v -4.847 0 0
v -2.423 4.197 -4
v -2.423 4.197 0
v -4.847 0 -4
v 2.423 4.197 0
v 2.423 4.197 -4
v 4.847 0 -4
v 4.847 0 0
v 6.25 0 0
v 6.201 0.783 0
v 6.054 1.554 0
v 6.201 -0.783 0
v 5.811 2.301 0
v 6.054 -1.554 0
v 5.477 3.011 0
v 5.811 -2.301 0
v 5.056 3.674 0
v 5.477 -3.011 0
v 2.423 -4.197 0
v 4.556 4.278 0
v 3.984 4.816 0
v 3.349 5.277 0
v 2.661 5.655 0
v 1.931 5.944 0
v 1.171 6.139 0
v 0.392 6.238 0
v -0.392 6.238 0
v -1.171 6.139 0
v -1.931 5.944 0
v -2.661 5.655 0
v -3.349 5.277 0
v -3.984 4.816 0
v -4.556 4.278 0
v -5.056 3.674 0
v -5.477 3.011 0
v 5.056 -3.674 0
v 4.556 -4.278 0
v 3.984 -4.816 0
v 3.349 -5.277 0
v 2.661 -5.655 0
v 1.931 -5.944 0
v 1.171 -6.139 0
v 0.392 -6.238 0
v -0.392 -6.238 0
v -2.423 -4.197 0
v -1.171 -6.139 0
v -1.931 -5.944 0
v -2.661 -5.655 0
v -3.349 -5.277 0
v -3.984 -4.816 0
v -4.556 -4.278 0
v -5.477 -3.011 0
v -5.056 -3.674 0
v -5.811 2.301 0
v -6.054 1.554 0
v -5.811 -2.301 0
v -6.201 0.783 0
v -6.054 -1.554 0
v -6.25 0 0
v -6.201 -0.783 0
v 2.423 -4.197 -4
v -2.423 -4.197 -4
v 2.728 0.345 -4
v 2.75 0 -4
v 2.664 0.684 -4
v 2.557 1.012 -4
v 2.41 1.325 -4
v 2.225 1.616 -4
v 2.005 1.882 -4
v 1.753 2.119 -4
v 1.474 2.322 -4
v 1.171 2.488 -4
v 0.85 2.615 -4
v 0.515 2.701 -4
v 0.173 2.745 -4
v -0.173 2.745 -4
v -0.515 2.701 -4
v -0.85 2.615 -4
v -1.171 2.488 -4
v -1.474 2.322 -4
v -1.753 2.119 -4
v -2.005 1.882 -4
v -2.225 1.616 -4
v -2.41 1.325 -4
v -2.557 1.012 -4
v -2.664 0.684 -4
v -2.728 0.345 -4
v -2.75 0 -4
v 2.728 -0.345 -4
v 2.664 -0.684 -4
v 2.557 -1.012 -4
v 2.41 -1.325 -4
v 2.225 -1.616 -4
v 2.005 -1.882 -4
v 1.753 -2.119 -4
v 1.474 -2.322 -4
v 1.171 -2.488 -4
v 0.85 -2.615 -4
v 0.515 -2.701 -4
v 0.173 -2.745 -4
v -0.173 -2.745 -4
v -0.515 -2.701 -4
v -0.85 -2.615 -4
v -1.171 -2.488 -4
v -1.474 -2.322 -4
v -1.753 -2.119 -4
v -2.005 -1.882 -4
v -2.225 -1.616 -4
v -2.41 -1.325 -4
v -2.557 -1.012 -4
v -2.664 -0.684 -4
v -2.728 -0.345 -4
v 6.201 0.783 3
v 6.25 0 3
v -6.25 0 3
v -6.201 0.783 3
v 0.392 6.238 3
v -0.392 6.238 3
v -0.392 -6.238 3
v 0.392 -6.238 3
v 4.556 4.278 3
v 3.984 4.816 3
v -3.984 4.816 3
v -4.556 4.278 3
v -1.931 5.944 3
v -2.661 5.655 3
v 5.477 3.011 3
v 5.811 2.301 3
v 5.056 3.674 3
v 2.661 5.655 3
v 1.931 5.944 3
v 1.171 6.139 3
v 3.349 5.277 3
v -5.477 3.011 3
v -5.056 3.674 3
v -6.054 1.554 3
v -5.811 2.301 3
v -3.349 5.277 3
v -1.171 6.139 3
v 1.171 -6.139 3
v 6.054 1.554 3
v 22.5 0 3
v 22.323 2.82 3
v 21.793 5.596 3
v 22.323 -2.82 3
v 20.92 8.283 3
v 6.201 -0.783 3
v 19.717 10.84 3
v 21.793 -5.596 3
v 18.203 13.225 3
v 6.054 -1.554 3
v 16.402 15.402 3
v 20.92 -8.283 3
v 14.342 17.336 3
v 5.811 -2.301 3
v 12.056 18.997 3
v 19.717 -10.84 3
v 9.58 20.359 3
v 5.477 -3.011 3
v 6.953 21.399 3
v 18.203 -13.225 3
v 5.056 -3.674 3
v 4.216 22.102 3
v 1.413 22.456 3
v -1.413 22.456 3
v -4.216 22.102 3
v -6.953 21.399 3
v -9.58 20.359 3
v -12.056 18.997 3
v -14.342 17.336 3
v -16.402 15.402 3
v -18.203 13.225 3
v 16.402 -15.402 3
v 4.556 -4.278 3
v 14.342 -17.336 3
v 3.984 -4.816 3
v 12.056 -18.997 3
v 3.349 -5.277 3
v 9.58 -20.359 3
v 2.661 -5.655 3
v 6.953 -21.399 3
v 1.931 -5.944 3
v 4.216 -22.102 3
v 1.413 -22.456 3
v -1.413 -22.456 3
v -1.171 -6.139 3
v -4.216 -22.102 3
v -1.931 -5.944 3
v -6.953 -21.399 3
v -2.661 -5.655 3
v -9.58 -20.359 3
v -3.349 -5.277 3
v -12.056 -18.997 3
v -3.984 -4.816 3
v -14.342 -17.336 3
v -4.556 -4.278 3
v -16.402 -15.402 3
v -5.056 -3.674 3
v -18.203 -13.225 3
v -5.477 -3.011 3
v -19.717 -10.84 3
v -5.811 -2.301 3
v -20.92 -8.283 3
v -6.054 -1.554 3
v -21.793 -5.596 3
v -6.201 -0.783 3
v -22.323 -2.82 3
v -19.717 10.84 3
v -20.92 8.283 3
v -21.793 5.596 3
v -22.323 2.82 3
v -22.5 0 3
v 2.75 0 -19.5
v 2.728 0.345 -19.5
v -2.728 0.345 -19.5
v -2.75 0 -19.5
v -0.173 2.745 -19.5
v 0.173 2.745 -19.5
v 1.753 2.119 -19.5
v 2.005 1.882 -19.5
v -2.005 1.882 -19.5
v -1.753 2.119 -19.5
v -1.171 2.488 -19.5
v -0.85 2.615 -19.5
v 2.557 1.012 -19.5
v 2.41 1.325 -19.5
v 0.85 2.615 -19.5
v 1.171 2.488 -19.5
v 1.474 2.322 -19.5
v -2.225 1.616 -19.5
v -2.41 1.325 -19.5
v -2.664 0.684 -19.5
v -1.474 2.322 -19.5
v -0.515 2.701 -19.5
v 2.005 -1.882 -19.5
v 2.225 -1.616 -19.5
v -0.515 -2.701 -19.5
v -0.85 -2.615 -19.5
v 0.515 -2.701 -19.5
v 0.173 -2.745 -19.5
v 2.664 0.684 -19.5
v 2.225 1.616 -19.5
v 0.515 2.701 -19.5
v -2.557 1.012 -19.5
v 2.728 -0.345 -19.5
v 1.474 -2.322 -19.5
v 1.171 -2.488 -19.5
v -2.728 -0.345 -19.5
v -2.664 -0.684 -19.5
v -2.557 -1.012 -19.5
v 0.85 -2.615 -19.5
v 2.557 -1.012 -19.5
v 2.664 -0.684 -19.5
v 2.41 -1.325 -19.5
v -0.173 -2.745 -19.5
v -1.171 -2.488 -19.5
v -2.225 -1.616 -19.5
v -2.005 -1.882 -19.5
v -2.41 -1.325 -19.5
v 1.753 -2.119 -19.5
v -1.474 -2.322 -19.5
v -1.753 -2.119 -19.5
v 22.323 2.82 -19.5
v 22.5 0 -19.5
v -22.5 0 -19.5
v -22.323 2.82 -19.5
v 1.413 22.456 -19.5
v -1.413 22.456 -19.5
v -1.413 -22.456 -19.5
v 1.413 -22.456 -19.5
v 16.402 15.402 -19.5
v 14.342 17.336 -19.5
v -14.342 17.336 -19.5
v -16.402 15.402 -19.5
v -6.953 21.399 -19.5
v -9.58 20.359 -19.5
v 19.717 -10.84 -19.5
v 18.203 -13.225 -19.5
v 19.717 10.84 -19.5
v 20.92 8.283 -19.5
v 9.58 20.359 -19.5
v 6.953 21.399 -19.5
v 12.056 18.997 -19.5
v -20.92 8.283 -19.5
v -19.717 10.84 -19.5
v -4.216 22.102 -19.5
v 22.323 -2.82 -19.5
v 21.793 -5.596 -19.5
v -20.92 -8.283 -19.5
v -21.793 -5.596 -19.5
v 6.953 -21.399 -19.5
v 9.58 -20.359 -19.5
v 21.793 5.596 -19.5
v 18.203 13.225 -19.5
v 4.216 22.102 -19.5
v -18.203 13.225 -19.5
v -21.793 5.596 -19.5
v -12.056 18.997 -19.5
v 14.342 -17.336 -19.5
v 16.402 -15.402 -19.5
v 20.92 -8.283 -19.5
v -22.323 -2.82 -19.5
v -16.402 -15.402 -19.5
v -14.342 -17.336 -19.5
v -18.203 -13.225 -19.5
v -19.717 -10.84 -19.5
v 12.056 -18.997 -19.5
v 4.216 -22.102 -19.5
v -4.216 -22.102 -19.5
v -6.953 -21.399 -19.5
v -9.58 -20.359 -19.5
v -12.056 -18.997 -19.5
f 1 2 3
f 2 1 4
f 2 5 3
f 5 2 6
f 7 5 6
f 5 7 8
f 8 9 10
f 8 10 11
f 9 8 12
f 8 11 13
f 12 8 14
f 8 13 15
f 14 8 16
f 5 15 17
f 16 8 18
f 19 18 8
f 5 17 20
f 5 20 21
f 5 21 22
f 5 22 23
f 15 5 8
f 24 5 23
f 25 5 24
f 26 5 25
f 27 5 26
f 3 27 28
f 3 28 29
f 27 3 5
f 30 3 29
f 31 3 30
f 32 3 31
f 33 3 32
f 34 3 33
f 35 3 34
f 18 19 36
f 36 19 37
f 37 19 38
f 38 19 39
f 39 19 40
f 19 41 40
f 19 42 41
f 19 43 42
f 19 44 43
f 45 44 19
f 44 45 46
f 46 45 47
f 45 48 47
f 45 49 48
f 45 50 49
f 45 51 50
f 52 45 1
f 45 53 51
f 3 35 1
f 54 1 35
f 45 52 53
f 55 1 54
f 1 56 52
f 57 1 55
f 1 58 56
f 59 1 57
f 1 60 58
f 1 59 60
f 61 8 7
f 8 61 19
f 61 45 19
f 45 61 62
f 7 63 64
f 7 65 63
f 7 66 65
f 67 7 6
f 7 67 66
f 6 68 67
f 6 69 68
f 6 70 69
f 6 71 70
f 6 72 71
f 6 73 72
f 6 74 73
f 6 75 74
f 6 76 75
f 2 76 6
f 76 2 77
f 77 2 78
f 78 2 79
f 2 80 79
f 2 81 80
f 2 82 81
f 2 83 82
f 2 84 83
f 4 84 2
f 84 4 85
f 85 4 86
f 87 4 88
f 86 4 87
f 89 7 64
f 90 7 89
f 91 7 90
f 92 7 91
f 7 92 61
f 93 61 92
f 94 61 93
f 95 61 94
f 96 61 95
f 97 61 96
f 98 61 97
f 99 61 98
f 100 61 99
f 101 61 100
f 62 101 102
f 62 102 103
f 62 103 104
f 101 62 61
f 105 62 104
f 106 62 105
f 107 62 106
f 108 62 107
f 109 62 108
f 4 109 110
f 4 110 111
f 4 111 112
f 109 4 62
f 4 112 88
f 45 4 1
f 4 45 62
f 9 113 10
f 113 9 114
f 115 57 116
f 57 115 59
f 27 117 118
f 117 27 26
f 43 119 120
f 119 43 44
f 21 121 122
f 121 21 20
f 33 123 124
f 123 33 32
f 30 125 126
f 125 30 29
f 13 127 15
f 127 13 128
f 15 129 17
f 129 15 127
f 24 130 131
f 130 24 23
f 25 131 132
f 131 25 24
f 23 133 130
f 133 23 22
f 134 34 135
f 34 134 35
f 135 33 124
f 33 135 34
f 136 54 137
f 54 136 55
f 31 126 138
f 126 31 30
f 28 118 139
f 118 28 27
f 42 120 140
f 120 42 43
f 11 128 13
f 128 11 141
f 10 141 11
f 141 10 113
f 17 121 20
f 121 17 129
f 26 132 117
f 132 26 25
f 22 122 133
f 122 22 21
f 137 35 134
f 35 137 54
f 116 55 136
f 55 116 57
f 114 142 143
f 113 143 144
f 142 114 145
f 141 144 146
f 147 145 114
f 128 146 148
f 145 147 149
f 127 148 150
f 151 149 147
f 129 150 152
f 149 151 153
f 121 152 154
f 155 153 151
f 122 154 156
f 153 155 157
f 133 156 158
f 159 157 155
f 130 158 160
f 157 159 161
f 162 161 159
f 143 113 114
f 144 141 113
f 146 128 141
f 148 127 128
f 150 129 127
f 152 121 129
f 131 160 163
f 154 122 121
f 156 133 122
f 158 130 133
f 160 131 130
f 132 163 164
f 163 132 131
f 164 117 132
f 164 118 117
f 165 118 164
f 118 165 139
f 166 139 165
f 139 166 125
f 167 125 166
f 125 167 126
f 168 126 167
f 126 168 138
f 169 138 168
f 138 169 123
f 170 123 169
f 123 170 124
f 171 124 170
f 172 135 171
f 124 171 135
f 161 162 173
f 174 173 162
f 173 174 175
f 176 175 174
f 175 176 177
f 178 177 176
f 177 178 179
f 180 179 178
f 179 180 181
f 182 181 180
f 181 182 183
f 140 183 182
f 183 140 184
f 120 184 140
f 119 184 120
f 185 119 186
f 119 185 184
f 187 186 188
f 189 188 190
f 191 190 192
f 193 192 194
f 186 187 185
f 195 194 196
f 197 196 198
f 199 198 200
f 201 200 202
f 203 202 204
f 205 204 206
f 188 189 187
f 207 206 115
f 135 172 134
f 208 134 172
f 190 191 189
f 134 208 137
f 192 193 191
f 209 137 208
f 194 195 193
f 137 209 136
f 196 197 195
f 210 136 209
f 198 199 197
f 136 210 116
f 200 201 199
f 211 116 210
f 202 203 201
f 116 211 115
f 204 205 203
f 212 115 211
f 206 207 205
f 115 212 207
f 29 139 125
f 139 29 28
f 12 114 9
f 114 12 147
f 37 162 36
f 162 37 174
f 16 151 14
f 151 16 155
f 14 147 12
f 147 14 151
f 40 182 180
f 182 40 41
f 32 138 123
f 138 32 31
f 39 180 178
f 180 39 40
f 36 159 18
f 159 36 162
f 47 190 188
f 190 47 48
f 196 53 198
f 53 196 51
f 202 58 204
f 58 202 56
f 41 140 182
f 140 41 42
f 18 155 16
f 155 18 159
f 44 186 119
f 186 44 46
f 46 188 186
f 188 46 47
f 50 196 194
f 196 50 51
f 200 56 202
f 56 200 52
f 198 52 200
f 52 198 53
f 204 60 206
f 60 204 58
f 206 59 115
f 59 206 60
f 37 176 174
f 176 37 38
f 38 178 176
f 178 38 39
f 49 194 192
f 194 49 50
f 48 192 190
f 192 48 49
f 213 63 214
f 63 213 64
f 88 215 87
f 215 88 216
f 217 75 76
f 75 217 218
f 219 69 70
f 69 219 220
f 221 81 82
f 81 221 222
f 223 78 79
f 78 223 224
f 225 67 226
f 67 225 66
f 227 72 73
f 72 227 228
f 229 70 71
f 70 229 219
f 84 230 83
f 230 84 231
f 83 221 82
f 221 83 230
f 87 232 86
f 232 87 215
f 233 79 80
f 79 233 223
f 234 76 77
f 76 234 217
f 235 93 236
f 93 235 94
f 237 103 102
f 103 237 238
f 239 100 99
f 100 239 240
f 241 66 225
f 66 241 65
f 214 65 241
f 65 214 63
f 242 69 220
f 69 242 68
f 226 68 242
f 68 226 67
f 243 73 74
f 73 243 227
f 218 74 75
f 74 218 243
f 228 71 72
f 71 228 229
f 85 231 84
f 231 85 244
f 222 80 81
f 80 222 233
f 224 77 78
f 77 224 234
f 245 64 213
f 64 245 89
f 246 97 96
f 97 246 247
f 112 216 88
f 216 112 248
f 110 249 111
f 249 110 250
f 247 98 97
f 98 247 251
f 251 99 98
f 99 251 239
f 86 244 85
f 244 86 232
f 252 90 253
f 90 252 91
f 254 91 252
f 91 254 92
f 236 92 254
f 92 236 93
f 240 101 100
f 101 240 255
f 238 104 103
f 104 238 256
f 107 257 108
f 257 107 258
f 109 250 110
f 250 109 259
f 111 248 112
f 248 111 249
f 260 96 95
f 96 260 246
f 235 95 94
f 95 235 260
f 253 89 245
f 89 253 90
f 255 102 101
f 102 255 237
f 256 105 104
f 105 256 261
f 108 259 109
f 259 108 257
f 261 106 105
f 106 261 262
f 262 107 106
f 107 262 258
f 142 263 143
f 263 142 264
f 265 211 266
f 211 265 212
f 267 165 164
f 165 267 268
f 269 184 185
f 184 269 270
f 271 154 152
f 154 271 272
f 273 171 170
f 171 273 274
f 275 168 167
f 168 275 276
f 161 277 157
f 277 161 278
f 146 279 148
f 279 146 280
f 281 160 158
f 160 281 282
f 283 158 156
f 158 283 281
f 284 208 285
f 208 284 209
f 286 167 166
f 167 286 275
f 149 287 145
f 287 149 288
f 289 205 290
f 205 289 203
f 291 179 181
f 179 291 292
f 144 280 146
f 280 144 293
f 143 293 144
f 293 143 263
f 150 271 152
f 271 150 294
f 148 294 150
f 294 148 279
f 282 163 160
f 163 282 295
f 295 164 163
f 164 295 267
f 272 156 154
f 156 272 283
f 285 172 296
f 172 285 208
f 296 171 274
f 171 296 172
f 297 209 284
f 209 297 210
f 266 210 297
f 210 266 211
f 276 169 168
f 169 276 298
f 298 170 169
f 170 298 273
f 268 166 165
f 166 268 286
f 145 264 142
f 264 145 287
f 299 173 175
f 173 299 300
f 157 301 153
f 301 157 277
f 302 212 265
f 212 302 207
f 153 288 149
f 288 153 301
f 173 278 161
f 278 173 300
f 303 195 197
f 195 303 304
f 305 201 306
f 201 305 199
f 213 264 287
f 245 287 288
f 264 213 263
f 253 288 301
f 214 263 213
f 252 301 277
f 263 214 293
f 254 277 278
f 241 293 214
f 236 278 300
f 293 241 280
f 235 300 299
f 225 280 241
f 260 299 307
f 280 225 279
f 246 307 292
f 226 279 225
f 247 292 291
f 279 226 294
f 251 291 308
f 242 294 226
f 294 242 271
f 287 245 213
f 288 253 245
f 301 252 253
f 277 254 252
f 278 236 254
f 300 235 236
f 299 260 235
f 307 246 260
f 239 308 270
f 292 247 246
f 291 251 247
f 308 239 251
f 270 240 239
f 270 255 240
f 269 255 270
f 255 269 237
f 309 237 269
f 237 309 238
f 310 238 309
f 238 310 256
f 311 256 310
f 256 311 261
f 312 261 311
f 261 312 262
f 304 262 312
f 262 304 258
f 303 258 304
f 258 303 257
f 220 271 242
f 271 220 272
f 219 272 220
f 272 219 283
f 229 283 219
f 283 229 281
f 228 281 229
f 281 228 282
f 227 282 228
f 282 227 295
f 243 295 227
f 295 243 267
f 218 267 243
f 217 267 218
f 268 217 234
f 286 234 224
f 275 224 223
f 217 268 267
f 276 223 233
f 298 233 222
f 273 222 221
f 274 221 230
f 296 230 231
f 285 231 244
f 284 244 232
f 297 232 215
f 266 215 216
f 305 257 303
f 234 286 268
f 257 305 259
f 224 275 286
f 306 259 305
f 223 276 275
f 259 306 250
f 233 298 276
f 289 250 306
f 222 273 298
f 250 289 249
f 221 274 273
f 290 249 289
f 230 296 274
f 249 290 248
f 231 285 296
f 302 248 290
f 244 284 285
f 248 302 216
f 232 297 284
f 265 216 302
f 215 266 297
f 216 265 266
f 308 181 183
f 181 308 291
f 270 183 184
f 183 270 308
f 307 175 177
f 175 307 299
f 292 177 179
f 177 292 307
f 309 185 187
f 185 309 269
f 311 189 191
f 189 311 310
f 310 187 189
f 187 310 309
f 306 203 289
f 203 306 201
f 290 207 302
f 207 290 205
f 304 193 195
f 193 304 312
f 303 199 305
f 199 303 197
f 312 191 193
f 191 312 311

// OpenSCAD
$fn = 50;


difference() {
	union() {
		translate(v = [0, 0, -19.5000000000]) {
			cylinder(h = 22.5000000000, r = 22.5000000000);
		}
	}
	union() {
		translate(v = [0, 0, 0]) {
			rotate(a = [0, 0, 0]) {
				difference() {
					union() {
						translate(v = [0, 0, -4]) {
							linear_extrude(height = 4) {
								polygon(points = [[4.8468000000, 0.0000000000], [2.4234000000, 4.1974519271], [-2.4234000000, 4.1974519271], [-4.8468000000, 0.0000000000], [-2.4234000000, -4.1974519271], [2.4234000000, -4.1974519271]]);
							}
						}
					}
					union();
				}
			}
		}
		#cylinder(h = 3, r = 6.2500000000);
		#translate(v = [0, 0, -100.0000000000]) {
			cylinder(h = 200, r = 2.7500000000);
		}
	}
}
